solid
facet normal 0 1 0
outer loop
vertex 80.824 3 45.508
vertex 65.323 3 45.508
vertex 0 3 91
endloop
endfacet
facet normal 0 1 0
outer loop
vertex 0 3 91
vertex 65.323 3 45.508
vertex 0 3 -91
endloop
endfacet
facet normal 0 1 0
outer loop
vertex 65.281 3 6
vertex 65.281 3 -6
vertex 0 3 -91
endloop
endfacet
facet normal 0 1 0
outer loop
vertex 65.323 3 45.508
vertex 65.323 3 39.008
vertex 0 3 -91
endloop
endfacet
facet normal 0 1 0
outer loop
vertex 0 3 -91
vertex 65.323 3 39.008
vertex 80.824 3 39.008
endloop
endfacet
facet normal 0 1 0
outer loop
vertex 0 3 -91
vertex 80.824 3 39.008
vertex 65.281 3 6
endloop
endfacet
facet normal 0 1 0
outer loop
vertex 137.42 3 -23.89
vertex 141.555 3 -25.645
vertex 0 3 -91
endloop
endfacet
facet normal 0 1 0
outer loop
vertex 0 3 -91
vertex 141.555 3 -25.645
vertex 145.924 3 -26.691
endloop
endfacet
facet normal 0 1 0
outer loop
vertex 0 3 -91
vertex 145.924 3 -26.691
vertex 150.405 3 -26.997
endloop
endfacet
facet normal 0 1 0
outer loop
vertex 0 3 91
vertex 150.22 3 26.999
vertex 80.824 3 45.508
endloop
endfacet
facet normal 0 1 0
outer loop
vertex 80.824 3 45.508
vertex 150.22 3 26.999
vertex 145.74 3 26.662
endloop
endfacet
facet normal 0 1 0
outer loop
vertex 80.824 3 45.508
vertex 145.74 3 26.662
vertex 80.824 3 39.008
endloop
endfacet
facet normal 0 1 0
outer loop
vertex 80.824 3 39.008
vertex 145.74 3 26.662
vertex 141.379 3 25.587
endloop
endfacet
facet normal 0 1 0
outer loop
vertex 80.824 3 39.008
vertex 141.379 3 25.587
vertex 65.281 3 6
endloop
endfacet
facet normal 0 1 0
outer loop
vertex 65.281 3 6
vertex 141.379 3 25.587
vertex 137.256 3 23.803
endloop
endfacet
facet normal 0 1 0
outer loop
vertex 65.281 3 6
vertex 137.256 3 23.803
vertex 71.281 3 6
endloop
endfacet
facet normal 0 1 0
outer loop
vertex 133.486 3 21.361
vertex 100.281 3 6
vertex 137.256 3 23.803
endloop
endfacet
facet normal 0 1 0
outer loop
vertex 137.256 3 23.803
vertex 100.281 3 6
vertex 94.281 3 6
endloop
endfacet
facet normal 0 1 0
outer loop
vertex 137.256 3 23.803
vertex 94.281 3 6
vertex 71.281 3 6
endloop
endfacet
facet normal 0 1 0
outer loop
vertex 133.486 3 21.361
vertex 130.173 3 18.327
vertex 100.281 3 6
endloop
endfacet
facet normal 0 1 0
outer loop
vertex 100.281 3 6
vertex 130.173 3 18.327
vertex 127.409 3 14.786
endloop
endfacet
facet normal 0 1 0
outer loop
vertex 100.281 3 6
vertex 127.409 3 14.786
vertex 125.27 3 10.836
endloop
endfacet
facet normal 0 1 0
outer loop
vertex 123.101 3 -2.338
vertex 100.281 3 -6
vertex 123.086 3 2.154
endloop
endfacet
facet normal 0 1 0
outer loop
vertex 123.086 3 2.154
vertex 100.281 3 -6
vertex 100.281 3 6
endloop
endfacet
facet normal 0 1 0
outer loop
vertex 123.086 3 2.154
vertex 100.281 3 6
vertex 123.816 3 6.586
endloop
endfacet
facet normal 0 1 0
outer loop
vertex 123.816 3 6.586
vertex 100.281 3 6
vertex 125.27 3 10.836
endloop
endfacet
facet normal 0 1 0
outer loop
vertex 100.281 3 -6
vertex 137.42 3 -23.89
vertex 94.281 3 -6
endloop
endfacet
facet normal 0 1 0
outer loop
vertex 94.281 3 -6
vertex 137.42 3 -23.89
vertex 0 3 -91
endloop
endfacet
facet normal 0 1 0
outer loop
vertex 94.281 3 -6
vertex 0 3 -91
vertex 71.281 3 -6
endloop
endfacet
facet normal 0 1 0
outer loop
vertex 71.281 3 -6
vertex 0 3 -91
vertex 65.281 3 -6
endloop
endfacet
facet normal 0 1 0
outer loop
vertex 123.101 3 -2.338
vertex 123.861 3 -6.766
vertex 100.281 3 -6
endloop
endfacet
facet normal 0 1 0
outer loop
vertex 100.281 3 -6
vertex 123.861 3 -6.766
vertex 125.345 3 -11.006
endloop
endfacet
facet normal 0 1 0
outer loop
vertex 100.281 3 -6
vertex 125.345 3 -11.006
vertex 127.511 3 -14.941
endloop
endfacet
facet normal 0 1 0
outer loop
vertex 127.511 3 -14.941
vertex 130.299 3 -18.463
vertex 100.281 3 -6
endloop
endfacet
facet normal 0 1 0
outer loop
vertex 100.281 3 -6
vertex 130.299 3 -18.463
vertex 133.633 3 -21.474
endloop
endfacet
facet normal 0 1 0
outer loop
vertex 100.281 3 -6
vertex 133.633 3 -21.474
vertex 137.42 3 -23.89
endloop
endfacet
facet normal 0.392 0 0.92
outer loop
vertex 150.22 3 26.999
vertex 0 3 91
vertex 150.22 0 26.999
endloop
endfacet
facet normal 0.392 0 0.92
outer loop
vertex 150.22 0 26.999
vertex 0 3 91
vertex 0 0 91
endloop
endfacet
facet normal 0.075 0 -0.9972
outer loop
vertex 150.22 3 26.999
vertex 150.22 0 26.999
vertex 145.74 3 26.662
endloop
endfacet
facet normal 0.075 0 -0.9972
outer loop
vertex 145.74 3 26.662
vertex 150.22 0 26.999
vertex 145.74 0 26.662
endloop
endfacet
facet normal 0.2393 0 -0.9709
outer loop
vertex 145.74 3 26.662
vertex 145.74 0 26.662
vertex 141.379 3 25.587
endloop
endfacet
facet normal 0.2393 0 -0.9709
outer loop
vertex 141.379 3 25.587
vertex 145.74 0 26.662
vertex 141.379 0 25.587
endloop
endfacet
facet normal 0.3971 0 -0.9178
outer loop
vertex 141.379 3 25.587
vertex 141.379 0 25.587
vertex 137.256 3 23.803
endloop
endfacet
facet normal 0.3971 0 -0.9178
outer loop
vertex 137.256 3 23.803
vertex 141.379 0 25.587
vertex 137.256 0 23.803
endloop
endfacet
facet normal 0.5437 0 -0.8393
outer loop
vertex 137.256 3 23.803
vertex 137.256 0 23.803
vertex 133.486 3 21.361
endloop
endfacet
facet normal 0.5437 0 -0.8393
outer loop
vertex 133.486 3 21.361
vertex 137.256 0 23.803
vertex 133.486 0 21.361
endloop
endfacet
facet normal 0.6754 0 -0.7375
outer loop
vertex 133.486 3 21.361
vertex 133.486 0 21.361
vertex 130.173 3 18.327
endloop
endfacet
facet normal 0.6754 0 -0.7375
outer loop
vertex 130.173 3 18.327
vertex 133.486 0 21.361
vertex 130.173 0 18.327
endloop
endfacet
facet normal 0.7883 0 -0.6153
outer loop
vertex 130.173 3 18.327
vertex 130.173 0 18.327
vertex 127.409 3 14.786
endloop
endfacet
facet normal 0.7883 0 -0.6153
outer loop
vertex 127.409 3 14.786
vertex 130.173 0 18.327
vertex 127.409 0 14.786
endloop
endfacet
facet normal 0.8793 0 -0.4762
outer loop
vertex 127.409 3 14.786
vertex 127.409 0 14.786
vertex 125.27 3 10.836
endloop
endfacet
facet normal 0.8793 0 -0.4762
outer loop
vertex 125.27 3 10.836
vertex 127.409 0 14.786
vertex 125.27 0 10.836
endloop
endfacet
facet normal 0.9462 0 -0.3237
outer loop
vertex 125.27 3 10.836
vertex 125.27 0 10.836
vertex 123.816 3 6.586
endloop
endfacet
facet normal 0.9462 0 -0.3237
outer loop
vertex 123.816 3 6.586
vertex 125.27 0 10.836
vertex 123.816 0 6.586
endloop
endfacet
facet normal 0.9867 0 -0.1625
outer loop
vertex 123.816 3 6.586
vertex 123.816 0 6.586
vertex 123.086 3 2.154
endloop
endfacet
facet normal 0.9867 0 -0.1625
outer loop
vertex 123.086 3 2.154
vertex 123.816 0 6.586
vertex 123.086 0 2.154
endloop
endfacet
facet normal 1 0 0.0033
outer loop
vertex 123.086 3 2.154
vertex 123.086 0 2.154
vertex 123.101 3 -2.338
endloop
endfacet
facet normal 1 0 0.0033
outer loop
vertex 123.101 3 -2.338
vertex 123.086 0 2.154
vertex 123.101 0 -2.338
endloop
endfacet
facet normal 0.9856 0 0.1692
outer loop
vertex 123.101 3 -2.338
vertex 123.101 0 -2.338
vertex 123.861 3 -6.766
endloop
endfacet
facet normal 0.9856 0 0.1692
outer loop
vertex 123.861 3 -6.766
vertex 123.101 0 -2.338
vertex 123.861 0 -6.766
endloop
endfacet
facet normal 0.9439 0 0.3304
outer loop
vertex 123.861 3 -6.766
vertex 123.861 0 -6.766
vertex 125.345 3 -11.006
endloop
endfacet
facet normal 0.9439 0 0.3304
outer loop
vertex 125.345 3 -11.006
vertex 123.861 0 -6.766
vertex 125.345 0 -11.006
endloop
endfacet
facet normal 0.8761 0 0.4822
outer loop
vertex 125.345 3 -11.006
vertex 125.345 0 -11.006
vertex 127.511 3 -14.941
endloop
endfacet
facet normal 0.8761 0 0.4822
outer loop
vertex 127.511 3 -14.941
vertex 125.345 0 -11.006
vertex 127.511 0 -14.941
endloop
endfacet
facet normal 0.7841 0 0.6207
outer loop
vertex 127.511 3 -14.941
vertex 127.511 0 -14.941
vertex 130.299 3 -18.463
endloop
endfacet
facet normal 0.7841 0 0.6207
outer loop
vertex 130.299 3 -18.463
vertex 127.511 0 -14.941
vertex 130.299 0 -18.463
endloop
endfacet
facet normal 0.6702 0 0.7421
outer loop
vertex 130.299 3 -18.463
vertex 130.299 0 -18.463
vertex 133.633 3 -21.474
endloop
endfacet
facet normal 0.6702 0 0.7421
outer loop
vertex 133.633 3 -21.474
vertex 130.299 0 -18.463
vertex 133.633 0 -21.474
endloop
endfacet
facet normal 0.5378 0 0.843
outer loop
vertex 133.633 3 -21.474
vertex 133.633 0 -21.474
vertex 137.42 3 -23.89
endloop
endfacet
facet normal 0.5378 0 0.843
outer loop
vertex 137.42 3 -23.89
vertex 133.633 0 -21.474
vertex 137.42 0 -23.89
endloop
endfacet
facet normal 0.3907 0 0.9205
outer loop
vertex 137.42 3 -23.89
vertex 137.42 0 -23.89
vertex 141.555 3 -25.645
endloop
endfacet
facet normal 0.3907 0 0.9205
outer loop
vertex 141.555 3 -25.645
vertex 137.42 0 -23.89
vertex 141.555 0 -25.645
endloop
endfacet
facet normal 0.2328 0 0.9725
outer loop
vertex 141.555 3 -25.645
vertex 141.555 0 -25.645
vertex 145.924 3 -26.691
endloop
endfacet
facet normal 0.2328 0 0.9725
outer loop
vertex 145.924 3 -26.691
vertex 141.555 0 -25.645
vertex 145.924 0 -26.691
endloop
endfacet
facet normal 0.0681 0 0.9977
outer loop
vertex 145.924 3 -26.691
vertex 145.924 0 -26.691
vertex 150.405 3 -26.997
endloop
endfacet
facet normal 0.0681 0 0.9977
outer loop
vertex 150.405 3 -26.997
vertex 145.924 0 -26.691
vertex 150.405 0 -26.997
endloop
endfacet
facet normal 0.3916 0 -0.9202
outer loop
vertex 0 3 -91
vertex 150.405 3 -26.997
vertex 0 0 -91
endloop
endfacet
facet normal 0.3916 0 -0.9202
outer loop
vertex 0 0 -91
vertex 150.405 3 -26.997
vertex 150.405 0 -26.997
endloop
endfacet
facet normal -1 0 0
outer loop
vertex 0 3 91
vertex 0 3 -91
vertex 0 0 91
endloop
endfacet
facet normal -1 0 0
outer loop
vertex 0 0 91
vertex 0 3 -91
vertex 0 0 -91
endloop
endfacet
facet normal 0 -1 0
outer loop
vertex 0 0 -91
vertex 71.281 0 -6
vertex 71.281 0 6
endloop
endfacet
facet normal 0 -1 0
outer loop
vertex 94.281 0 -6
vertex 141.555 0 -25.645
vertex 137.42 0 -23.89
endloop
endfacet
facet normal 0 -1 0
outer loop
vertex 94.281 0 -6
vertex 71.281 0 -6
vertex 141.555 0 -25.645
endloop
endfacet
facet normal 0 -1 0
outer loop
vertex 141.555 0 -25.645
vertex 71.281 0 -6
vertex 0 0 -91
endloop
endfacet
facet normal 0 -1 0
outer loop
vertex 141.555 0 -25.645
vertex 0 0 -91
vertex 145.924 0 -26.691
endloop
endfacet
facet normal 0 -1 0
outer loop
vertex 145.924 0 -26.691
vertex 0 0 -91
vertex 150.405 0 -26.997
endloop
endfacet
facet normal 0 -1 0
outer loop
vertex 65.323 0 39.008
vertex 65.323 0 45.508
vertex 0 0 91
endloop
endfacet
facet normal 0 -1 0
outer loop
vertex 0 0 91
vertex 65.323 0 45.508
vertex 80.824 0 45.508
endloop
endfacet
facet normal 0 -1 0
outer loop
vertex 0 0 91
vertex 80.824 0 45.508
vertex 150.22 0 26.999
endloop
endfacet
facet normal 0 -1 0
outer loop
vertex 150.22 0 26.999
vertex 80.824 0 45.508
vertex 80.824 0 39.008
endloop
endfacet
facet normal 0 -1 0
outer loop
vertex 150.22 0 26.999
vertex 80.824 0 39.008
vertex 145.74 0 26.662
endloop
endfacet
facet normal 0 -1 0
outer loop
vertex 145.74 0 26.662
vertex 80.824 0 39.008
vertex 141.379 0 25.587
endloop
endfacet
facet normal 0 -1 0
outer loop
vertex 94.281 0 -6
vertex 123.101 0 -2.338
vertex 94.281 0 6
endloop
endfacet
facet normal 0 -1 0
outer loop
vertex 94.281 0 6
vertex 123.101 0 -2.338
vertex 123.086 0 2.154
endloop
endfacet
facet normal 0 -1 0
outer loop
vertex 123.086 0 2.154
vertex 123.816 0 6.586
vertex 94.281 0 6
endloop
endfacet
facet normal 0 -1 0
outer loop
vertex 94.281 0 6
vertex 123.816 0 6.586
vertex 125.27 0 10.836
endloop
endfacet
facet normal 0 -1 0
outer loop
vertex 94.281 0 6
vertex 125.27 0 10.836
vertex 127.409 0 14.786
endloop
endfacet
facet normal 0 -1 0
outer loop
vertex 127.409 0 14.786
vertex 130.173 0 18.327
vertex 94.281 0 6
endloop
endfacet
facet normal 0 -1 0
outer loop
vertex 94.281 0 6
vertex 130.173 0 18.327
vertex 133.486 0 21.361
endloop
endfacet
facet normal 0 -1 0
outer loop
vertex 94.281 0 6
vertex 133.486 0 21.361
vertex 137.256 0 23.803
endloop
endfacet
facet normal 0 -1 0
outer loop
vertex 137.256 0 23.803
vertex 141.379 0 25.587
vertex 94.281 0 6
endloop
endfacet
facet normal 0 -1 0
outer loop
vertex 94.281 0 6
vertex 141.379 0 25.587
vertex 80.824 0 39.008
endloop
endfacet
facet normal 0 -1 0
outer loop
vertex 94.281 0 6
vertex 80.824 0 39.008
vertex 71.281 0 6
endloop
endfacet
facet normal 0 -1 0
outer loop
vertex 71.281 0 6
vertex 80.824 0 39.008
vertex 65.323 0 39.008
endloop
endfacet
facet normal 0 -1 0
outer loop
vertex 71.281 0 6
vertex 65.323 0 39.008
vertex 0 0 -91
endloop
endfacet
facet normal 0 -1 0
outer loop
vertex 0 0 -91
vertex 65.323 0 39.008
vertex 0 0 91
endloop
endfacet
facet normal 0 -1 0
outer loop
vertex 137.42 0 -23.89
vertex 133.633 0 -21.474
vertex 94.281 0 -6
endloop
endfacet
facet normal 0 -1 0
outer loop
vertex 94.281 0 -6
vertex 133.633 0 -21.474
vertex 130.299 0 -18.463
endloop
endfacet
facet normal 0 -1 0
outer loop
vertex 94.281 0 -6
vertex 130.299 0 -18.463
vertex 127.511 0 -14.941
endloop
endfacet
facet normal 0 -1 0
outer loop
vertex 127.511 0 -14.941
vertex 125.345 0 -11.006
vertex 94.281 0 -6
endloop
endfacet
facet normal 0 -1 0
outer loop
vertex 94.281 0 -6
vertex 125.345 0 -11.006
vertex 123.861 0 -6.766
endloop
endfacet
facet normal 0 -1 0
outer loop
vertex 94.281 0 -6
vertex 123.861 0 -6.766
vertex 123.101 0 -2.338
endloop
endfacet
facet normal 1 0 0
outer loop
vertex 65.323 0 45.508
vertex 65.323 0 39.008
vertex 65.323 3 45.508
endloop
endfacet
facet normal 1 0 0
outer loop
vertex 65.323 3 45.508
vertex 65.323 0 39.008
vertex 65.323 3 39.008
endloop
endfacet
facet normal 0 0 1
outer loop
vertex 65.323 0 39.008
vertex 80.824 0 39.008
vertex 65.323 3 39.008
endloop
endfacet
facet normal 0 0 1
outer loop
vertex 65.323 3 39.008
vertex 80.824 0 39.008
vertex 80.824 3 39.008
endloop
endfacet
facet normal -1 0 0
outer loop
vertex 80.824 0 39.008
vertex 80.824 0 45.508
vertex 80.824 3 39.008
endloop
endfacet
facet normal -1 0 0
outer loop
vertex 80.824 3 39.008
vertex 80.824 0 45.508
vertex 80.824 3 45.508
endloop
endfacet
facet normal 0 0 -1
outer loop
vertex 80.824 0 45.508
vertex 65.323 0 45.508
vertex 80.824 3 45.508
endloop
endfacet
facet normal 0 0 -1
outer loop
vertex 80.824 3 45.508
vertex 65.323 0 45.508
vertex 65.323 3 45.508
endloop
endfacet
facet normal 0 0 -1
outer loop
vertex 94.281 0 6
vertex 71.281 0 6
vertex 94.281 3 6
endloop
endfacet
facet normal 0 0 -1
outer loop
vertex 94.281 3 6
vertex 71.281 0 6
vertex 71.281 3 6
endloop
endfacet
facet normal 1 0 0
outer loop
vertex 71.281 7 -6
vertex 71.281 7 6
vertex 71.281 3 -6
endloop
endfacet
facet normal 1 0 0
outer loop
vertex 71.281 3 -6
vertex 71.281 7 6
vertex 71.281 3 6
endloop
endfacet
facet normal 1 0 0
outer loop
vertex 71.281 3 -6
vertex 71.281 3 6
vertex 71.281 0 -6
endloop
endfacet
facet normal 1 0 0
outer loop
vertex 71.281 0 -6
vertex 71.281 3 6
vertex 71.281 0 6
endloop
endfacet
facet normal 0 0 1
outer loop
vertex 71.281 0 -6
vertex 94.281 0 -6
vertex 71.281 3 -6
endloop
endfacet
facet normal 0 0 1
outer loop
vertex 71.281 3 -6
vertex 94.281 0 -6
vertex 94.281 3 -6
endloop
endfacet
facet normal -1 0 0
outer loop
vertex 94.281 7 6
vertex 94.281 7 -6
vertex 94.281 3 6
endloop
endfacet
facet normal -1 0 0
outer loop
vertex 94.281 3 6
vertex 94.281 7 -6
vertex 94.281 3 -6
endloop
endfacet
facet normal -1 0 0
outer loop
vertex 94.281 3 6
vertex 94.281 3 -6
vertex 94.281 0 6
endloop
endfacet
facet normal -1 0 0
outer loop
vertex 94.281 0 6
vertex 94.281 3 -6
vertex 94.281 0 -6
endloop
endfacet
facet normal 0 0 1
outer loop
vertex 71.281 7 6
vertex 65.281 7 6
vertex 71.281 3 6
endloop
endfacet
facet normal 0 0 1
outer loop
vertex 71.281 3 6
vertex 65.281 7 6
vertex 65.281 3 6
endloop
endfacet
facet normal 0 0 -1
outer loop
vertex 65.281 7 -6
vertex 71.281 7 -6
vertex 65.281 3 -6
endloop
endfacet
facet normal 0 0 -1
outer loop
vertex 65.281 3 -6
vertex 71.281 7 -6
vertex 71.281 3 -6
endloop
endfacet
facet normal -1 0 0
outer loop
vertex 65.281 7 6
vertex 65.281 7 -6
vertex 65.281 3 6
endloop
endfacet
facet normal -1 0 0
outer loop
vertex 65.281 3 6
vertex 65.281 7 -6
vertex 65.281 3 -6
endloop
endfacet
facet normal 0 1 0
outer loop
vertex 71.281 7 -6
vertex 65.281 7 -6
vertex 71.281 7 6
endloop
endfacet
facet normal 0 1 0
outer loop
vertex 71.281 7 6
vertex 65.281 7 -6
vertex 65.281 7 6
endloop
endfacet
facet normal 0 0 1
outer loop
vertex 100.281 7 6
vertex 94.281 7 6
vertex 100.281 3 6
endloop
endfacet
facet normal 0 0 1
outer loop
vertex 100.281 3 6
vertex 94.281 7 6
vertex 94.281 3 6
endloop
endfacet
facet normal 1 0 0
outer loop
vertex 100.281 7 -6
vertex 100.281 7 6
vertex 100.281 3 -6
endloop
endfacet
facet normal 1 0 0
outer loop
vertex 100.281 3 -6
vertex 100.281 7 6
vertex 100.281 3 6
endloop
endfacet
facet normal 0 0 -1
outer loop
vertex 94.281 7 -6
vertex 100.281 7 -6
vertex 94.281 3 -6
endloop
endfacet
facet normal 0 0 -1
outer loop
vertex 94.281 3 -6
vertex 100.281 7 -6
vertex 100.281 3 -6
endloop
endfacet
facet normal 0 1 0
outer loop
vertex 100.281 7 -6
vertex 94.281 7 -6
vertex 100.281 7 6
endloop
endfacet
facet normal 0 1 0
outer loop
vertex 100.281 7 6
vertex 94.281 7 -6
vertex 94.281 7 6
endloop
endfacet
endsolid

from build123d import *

# Parameters (mm, degrees)
BOSS_EXTRUDE1_DEPTH = 3
SKETCH2_W           = 15.500819923
SKETCH2_H           = 6.5
CUT_EXTRUDE1_DEPTH  = 176.817329233
SKETCH3_W           = 23
SKETCH3_H           = 12
CUT_EXTRUDE2_DEPTH  = 176.817329233
SKETCH4_W           = 6
SKETCH4_H           = 12
BOSS_EXTRUDE2_DEPTH = 4


with BuildPart() as part:
    # Sketch1 → Boss-Extrude1 (new body)
    with BuildSketch(Plane(origin=(0, 0, 0), x_dir=(1, 0, 0), z_dir=(0, 1, 0))):
        with BuildLine():
            Line((0, -91), (0, 91))
            Line((0, 91), (150.405230157, 26.996958875))
            ThreePointArc((150.405230157, 26.996958875), (123.000159405, 0.092778483), (150.219685616, -26.999106249))
            Line((150.219685616, -26.999106249), (0, -91))
        make_face()
    extrude(amount=BOSS_EXTRUDE1_DEPTH)

    # Sketch2 → Cut-Extrude1 (cut, through all)
    with BuildSketch(Plane(origin=(0, 3, 0), x_dir=(1, 0, 0), z_dir=(0, 1, 0))):
        with Locations((73.073381573, -42.257557828)):
            Rectangle(SKETCH2_W, SKETCH2_H)
    extrude(amount=-CUT_EXTRUDE1_DEPTH, mode=Mode.SUBTRACT)

    # Sketch3 → Cut-Extrude2 (cut, through all)
    with BuildSketch(Plane(origin=(0, 3, 0), x_dir=(1, 0, 0), z_dir=(0, 1, 0))):
        with Locations((82.780547291, 0)):
            Rectangle(SKETCH3_W, SKETCH3_H)
    extrude(amount=-CUT_EXTRUDE2_DEPTH, mode=Mode.SUBTRACT)

    # Sketch4 → Boss-Extrude2 (add)
    with BuildSketch(Plane(origin=(0, 3, 0), x_dir=(1, 0, 0), z_dir=(0, 1, 0))):
        with Locations((97.280547291, 0)):
            Rectangle(SKETCH4_W, SKETCH4_H)
        with Locations((68.280547291, 0)):
            Rectangle(SKETCH4_W, SKETCH4_H)
    extrude(amount=BOSS_EXTRUDE2_DEPTH)


solid = part.part
